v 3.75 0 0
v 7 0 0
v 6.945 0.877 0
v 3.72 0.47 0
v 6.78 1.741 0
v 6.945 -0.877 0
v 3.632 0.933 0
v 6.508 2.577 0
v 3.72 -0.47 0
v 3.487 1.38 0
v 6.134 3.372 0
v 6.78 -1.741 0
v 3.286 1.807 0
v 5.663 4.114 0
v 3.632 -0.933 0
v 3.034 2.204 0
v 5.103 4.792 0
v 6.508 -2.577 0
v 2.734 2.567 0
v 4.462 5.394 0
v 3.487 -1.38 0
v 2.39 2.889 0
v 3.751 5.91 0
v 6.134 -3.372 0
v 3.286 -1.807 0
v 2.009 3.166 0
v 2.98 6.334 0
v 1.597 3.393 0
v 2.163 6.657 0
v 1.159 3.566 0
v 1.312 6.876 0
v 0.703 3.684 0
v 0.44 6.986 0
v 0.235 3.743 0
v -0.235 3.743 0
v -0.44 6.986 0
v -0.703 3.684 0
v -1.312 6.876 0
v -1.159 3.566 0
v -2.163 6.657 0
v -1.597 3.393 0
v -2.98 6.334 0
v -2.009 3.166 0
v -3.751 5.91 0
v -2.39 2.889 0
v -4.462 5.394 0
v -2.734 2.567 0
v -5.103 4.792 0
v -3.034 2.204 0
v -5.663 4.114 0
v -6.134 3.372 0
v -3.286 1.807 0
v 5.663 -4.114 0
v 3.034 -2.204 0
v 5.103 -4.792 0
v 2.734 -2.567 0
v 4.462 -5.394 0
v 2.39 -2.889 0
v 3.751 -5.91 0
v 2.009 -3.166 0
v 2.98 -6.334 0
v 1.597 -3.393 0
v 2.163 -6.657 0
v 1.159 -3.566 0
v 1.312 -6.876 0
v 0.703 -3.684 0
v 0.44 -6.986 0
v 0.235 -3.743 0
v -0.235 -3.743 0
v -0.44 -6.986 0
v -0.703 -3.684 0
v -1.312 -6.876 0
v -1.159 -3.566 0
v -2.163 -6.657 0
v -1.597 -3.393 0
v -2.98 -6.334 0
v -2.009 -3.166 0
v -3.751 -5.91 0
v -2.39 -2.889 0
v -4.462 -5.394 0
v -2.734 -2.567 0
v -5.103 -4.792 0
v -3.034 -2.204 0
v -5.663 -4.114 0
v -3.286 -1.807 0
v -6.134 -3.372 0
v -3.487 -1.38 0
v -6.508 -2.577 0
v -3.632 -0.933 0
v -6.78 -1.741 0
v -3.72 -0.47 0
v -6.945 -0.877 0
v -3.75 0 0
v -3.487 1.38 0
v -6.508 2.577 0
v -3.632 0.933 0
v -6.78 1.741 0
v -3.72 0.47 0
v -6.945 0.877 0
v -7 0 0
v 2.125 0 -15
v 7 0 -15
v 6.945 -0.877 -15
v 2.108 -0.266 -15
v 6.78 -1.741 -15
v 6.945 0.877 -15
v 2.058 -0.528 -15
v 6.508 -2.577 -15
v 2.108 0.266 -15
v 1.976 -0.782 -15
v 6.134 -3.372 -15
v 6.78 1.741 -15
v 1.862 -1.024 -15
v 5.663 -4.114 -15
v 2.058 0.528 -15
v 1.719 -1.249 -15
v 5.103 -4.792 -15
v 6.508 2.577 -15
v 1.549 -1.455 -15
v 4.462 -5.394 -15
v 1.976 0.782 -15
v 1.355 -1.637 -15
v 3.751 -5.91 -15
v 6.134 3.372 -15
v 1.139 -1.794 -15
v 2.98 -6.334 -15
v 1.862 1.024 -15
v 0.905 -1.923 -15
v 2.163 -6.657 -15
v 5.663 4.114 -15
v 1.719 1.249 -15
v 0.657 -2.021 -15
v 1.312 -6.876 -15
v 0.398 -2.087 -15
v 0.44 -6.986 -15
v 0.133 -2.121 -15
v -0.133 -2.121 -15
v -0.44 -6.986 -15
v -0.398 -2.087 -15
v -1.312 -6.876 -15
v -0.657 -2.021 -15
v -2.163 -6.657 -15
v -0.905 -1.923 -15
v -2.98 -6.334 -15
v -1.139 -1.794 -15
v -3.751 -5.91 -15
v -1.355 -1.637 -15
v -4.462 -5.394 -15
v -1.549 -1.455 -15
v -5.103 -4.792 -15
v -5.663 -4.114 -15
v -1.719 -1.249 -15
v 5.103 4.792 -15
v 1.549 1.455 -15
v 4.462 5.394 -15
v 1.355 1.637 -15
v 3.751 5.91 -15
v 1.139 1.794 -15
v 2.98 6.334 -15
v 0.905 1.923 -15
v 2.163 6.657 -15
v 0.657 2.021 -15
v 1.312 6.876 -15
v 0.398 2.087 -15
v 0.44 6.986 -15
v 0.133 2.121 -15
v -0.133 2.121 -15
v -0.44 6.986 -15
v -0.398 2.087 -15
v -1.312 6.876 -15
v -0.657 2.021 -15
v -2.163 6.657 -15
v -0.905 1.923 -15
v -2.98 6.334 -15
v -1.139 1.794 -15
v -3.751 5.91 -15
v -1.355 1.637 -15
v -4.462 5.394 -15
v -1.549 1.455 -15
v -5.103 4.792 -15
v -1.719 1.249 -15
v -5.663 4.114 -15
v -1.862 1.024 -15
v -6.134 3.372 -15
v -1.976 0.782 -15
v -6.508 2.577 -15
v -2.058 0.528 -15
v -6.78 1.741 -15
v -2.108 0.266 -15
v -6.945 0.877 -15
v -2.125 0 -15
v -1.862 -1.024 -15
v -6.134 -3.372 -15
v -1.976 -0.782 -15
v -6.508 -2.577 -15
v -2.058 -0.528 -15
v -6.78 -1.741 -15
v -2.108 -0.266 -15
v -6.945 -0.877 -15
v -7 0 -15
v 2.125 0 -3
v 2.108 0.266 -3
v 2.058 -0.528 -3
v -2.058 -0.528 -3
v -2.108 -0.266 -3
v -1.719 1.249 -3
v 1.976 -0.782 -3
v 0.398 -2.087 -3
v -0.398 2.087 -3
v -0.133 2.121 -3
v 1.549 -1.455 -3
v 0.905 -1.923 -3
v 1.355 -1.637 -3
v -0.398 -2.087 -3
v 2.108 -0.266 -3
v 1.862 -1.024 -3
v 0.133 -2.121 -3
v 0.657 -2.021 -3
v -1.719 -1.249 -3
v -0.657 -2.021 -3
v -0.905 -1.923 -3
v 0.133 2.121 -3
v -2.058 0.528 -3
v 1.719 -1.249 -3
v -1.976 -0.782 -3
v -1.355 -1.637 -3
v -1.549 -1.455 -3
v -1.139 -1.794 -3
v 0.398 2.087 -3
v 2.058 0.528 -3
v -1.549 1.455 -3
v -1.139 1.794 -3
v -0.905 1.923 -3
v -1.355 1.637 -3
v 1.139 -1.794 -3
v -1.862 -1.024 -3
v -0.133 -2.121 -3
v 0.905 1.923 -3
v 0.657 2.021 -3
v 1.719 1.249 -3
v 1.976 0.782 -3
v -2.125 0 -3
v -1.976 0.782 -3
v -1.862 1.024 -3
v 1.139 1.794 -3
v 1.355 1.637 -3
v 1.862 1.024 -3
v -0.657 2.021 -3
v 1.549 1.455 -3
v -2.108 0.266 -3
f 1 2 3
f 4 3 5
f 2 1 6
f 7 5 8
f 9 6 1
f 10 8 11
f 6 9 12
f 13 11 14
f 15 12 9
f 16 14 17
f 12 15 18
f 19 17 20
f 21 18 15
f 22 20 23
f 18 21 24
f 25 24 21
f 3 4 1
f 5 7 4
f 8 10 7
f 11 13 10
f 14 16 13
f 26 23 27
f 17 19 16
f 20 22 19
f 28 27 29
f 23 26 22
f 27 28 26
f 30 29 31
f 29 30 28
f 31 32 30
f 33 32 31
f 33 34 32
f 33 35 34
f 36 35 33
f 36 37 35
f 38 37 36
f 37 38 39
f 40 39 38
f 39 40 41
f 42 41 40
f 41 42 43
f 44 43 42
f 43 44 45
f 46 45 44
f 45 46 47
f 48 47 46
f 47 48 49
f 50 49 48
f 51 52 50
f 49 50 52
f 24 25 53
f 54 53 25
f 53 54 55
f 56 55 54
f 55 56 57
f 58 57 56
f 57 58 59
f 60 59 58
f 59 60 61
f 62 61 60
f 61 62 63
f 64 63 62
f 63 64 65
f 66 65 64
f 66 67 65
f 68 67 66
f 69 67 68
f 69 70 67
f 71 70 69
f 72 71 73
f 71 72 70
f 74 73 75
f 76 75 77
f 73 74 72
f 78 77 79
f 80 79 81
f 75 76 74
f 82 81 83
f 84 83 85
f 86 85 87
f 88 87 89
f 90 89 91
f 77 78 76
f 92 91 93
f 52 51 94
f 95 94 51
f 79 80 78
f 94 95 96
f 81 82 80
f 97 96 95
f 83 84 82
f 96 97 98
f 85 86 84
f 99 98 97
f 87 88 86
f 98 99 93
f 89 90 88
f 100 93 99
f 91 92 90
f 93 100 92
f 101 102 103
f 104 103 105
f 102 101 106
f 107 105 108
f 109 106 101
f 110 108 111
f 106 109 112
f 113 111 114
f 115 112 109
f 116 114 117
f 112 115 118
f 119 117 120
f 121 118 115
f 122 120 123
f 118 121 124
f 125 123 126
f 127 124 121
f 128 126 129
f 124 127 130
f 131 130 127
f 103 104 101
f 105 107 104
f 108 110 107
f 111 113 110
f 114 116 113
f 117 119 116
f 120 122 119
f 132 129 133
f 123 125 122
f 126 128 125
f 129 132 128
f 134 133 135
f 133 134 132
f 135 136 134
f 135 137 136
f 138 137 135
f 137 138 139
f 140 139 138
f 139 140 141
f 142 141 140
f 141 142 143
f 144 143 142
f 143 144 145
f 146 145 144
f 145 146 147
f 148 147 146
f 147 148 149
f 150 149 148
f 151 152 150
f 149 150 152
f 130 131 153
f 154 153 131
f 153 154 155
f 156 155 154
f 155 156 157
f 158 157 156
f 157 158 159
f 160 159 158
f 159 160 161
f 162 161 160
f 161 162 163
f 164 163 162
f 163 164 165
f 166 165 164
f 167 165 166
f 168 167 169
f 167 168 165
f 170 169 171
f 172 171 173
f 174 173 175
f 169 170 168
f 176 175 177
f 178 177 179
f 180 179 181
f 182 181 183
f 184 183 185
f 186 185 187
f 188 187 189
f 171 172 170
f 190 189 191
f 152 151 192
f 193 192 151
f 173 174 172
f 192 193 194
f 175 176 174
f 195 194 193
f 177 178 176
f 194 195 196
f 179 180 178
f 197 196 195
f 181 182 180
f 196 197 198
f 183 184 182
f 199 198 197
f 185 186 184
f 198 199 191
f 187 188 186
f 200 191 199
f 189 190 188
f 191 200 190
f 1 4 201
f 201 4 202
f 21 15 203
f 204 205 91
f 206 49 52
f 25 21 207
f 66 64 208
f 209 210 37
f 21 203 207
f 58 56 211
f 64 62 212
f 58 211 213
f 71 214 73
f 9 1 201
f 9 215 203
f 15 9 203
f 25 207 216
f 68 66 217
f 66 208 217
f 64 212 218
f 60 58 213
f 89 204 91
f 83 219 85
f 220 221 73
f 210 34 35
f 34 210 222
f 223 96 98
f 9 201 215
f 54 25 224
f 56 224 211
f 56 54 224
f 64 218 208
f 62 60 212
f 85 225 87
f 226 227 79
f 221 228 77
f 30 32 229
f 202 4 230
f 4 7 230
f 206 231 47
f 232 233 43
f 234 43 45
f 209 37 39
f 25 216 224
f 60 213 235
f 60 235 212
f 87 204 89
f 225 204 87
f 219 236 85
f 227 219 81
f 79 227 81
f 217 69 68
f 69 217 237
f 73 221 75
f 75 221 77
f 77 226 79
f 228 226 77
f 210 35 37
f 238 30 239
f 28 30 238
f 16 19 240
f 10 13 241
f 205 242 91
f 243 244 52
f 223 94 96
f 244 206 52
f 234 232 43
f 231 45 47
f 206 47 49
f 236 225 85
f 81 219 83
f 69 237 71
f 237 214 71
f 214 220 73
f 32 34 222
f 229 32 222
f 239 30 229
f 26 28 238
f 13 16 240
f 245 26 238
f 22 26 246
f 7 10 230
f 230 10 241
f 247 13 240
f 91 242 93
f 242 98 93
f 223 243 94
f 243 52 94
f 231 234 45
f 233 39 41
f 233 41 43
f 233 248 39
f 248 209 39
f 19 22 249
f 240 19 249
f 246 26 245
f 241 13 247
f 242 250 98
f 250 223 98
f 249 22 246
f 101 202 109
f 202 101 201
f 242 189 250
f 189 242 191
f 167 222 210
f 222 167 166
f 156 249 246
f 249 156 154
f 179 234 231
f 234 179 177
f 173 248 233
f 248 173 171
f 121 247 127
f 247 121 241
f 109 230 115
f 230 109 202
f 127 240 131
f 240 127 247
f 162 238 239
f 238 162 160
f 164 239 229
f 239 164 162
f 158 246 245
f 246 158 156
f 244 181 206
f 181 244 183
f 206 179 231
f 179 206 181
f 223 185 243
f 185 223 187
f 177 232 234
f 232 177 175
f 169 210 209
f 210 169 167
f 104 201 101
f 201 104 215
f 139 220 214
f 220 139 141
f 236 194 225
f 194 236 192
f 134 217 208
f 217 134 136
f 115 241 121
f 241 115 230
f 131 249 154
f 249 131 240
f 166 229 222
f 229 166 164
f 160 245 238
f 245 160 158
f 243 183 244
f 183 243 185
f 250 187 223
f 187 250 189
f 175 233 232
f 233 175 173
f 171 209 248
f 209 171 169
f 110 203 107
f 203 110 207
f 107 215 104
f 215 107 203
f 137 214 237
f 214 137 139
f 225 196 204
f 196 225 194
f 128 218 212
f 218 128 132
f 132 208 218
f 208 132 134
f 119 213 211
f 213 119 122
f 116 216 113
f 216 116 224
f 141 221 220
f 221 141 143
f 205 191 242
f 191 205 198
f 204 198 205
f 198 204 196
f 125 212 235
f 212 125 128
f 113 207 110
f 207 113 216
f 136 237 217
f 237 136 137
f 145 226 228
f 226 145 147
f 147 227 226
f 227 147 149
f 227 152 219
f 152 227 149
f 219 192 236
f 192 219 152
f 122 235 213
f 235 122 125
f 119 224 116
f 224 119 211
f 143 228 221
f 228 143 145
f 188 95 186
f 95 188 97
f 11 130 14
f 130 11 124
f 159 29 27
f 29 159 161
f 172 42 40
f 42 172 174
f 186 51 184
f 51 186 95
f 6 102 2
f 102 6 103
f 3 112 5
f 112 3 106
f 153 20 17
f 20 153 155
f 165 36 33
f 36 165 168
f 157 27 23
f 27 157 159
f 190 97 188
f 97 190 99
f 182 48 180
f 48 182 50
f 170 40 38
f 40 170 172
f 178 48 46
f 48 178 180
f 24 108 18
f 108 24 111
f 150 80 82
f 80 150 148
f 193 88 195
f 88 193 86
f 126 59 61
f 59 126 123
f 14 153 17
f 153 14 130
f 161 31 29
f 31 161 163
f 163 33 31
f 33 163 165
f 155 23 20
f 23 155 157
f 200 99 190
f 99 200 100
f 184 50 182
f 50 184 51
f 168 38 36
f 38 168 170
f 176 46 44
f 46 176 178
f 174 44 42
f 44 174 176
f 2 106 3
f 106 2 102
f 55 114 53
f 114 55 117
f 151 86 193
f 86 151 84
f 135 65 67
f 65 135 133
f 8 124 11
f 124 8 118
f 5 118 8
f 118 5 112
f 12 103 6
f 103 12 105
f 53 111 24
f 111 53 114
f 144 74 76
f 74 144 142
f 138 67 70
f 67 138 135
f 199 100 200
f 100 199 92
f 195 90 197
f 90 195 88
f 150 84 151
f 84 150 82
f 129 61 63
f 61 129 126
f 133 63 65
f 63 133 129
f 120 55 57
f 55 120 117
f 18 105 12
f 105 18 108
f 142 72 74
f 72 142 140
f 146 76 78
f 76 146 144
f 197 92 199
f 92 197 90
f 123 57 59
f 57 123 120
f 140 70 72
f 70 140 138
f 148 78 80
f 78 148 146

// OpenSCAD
$fn = 50;


difference() {
	union() {
		translate(v = [0, 0, -15.0000000000]) {
			cylinder(h = 15, r = 7.0000000000);
		}
		cylinder(h = 0, r = 13.0000000000);
	}
	union() {
		translate(v = [0, 0, 0]) {
			rotate(a = [0, 0, 0]) {
				difference() {
					union() {
						#translate(v = [0, 0, -15.0000000000]) {
							cylinder(h = 15, r = 2.0000000000);
						}
						#translate(v = [0, 0, -3]) {
							cylinder(h = 3, r = 7.0000000000, r1 = 2.1250000000, r2 = 3.7500000000);
						}
						#translate(v = [0, 0, -15.0000000000]) {
							cylinder(h = 15, r = 2.1250000000);
						}
						#translate(v = [0, 0, -15.0000000000]) {
							cylinder(h = 15, r = 2.0000000000);
						}
					}
					union();
				}
			}
		}
	}
}
